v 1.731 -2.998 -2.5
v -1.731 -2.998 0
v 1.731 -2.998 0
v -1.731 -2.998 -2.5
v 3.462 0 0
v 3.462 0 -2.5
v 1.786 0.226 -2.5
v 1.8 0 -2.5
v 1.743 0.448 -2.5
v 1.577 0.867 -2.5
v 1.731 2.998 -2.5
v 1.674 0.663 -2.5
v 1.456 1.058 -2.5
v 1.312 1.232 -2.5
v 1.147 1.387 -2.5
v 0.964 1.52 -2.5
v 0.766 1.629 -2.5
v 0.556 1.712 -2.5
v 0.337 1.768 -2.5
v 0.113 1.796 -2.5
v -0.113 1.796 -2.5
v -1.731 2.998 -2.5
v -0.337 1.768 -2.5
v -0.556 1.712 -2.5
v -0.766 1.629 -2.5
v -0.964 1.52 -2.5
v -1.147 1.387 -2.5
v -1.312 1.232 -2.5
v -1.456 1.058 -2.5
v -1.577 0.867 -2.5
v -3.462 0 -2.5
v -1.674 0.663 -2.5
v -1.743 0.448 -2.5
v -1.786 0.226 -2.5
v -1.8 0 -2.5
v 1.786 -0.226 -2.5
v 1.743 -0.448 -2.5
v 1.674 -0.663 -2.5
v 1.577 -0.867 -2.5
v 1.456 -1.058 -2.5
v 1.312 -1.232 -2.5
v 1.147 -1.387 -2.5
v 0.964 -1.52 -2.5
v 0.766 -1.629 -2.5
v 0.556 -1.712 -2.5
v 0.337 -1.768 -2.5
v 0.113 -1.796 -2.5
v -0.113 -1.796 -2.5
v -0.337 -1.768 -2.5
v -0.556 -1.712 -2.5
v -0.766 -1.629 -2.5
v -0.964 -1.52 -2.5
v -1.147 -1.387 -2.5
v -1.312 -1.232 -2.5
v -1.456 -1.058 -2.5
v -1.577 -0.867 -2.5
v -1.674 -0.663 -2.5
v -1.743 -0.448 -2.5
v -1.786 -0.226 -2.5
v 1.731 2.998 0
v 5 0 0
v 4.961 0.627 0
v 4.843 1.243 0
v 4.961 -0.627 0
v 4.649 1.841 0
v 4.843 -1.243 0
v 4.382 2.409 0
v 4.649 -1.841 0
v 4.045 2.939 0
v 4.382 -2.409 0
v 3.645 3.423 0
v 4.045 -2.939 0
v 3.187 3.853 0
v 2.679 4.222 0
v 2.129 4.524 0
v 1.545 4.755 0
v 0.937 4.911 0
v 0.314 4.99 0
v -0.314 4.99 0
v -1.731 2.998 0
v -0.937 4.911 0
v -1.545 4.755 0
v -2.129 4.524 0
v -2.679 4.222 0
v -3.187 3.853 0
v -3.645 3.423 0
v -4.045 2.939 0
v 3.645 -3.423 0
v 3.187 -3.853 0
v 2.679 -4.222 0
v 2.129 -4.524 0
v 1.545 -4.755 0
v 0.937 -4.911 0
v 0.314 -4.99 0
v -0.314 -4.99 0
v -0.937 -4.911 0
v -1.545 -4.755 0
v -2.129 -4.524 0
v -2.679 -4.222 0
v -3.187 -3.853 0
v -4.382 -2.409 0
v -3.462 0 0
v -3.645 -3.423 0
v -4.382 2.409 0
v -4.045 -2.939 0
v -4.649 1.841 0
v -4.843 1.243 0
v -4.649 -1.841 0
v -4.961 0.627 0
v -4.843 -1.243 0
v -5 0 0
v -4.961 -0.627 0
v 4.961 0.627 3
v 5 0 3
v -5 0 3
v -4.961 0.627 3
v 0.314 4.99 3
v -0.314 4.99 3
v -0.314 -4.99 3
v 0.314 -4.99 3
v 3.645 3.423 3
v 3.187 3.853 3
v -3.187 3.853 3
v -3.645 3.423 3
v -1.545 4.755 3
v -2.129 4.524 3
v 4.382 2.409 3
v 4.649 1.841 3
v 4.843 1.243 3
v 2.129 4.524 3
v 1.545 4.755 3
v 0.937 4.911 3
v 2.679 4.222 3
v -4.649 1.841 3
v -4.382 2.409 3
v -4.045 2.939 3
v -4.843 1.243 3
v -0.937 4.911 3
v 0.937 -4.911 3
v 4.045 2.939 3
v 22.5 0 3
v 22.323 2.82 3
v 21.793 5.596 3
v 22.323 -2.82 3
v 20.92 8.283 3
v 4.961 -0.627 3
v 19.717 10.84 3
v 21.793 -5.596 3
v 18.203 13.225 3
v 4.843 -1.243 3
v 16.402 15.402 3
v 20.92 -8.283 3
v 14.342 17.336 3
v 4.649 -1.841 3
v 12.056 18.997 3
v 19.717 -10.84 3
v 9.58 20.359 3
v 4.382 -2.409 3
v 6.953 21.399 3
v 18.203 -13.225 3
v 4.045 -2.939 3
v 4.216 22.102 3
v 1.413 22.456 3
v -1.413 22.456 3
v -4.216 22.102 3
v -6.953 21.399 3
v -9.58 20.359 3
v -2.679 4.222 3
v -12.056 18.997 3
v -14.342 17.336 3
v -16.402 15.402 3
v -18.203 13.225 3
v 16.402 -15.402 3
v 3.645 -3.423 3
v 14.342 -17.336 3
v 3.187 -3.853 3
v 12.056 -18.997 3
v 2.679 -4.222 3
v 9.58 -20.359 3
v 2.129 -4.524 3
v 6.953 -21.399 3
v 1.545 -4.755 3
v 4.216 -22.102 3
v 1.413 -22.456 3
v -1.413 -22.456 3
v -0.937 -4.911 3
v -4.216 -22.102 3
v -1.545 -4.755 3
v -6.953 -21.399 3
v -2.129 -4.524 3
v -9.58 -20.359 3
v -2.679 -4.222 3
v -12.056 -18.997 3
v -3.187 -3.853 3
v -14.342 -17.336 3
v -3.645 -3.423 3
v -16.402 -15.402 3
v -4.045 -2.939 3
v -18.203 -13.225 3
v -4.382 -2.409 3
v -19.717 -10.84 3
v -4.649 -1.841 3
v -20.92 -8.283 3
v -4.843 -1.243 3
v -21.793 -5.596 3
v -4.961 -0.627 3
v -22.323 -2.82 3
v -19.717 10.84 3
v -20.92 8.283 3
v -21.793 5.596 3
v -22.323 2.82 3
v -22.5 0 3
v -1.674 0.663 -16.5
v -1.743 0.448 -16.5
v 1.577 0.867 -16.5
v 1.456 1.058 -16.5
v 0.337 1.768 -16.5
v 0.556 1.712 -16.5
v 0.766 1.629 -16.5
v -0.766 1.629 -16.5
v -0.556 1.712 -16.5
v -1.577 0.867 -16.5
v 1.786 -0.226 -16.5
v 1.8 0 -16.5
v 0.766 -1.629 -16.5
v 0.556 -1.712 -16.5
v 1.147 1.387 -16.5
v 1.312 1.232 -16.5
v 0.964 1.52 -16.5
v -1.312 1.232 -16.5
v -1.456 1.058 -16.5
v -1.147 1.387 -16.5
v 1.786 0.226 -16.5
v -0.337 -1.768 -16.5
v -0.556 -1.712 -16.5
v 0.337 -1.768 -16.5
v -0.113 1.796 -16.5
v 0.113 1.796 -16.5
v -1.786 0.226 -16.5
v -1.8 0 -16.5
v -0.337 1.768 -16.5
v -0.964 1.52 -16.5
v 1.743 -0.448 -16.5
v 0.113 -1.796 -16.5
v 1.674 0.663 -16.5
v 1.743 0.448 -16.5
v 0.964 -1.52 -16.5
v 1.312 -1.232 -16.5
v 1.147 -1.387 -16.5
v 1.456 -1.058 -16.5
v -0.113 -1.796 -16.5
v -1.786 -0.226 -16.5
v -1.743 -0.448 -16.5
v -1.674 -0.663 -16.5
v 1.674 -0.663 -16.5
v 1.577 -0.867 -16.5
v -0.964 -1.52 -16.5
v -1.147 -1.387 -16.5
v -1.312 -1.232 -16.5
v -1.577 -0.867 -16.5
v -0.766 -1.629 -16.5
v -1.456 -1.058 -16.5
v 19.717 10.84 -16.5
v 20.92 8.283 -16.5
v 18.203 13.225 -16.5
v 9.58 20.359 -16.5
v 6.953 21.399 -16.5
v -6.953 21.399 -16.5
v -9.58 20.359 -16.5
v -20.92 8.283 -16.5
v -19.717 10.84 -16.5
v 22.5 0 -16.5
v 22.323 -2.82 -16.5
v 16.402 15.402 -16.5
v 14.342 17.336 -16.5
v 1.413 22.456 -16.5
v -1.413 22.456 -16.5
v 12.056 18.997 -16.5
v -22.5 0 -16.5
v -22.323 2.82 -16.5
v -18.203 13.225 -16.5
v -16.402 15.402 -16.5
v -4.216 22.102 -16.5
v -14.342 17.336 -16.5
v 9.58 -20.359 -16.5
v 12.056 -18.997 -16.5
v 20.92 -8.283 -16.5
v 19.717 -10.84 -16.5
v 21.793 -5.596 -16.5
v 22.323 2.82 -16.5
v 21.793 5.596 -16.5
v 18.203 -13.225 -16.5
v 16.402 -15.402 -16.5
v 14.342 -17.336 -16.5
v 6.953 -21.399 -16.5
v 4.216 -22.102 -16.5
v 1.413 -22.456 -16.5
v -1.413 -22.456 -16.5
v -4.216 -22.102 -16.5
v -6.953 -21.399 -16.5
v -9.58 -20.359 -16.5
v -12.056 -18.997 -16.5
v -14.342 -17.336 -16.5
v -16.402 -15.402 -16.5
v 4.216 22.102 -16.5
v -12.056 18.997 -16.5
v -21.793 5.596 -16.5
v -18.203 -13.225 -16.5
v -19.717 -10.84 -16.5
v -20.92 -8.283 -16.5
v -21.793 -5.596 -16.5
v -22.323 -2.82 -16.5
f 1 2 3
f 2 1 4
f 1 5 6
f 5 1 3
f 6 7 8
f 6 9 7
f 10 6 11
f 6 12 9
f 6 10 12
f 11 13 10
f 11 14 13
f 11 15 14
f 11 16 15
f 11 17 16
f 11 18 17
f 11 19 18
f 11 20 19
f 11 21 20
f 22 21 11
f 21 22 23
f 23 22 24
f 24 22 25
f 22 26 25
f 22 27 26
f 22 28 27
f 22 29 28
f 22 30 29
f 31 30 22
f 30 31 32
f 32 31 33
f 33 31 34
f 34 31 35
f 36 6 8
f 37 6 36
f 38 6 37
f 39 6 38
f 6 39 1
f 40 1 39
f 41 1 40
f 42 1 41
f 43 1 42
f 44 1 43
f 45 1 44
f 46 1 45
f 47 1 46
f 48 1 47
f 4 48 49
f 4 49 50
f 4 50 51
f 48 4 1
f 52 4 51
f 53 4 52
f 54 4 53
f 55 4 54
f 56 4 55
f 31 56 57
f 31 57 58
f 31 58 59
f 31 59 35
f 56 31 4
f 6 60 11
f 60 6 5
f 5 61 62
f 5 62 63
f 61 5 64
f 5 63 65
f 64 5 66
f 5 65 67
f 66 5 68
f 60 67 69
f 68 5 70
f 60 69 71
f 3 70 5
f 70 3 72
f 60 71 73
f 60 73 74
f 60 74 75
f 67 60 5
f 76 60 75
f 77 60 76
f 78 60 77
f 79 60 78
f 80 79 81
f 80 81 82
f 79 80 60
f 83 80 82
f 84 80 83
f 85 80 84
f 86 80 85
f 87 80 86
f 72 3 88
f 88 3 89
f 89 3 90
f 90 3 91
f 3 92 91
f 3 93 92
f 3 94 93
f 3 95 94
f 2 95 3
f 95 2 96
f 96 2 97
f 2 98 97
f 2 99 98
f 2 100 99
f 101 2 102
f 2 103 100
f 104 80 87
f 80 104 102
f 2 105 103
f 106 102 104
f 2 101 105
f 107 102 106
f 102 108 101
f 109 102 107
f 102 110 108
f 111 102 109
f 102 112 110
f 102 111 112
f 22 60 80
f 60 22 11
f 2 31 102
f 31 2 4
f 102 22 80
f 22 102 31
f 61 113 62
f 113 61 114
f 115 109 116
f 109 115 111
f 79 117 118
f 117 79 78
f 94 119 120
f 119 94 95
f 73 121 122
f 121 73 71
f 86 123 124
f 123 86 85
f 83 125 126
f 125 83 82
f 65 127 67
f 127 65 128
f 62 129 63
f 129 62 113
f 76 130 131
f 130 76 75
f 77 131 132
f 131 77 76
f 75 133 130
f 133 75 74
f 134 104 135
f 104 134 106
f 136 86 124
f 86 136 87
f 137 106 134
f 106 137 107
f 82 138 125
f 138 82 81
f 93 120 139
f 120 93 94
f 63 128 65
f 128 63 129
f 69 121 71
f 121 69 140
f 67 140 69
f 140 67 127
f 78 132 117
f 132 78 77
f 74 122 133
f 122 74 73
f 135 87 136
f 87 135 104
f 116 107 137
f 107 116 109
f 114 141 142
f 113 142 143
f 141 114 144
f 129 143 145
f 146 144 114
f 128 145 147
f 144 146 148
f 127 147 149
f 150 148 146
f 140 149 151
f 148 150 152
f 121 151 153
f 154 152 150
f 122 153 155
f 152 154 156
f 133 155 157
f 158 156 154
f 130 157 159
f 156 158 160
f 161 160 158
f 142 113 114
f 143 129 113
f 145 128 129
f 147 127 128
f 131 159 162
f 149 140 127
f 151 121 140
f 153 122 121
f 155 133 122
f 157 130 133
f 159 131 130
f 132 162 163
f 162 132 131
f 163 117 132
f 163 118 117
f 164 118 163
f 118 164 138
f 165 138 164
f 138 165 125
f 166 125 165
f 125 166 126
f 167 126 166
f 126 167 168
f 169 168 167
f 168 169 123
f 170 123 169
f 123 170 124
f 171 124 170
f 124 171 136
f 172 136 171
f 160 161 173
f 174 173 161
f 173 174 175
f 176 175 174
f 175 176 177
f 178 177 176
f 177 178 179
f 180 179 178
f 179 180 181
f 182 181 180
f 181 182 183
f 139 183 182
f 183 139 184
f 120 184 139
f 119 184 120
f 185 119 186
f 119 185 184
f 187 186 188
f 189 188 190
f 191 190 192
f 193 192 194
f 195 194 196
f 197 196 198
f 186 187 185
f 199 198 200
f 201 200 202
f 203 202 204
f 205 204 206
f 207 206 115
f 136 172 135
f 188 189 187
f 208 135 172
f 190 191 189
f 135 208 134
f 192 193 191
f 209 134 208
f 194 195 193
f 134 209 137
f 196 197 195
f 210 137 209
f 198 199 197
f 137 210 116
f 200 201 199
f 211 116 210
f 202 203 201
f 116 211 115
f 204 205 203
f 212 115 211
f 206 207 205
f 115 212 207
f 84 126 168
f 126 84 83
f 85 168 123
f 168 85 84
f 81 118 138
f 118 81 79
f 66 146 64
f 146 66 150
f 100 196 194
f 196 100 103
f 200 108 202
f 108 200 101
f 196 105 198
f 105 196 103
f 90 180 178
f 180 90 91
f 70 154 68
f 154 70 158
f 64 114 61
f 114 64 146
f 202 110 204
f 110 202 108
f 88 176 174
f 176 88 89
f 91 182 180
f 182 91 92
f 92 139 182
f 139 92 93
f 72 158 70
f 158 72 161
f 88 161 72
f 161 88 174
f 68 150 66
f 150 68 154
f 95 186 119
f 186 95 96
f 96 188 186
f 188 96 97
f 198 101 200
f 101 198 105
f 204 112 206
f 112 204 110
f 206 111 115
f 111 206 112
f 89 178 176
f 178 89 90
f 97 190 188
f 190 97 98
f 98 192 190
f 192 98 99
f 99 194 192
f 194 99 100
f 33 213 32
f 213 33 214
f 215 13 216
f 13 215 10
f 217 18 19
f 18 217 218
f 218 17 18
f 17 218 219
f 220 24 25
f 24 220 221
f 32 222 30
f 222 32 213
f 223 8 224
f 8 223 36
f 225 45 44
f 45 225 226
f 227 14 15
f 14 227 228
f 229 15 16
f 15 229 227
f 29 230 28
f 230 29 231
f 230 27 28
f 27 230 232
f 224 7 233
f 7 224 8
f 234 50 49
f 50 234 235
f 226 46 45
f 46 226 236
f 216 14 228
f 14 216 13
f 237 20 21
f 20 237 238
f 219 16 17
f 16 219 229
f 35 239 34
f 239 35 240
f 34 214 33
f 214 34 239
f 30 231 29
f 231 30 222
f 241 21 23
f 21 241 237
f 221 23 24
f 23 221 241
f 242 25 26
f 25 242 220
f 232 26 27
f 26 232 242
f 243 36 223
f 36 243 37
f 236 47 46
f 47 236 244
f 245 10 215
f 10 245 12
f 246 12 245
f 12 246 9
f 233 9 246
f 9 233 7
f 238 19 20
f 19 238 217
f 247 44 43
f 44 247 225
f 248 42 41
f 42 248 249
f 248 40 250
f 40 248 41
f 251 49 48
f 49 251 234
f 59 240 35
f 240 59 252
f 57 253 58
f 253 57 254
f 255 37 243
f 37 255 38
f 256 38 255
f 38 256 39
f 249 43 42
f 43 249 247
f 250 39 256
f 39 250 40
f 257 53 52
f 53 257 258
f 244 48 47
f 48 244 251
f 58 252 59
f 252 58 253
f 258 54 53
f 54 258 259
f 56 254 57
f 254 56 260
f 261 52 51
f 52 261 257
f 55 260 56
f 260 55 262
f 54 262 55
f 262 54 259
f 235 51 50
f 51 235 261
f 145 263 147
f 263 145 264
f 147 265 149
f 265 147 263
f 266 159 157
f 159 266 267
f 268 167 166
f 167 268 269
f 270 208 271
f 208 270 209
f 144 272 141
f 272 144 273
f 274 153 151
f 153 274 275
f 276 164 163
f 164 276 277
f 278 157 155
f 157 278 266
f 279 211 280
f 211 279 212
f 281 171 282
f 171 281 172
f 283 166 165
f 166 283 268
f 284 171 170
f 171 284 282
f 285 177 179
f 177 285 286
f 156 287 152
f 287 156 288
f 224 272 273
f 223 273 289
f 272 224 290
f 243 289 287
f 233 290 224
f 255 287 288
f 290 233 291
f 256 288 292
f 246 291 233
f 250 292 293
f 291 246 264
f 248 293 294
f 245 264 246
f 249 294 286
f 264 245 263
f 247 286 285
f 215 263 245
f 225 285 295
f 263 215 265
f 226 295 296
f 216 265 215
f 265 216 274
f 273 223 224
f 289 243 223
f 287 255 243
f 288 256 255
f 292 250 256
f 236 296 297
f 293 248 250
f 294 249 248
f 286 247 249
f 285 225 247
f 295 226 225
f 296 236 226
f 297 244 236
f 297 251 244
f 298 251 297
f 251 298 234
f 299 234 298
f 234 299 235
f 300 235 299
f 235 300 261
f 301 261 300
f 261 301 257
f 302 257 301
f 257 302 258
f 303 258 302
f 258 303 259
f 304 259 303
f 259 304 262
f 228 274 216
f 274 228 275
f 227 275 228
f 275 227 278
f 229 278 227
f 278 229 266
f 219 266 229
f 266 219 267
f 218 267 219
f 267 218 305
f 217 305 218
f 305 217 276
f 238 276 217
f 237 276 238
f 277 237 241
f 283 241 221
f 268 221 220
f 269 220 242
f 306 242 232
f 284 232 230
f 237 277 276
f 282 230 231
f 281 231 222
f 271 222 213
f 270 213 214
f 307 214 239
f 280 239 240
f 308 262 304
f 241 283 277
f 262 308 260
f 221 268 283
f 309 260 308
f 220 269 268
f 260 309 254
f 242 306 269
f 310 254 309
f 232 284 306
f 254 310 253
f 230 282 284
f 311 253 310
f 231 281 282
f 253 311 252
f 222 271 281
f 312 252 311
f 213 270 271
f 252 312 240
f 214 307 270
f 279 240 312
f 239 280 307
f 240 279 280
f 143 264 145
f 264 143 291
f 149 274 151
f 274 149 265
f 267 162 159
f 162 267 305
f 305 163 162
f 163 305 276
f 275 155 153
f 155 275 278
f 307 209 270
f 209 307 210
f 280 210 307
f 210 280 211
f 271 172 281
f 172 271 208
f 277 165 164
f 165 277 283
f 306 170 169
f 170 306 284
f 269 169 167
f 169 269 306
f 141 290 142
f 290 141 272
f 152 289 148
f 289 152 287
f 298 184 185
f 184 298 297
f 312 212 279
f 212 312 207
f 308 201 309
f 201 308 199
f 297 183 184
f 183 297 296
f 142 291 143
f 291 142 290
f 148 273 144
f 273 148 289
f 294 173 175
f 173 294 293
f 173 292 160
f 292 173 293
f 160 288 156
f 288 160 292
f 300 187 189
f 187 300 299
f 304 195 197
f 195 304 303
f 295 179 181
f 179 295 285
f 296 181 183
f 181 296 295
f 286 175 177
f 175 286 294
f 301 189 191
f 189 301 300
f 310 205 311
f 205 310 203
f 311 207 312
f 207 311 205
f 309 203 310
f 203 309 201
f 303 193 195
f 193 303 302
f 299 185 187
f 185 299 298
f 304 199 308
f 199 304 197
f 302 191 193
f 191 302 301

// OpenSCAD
$fn = 50;

difference() {
	union() {
		translate(v = [0, 0, -16.5]) {
			cylinder(h = 19.5, r = 22.5);
		}
	}
	union() {
		translate(v = [0, 0, 0]) {
			rotate(a = [0, 0, 0]) {
				difference() {
					union() {
						translate(v = [0, 0, -2.5]) {
							linear_extrude(height = 2.5) {
								polygon(points = [[3.4619999999999997, 0.0], [1.7310000000000003, 2.9981799479017264], [-1.7309999999999992, 2.9981799479017264], [-3.4619999999999997, 4.2397272186481365e-16], [-1.7310000000000014, -2.998179947901726], [1.7309999999999977, -2.9981799479017277]]);
							}
						}
					}
					union();
				}
			}
		}
		#cylinder(h = 3, r = 5.0);
		#translate(v = [0, 0, -100.0]) {
			cylinder(h = 200, r = 1.8);
		}
	}
}
